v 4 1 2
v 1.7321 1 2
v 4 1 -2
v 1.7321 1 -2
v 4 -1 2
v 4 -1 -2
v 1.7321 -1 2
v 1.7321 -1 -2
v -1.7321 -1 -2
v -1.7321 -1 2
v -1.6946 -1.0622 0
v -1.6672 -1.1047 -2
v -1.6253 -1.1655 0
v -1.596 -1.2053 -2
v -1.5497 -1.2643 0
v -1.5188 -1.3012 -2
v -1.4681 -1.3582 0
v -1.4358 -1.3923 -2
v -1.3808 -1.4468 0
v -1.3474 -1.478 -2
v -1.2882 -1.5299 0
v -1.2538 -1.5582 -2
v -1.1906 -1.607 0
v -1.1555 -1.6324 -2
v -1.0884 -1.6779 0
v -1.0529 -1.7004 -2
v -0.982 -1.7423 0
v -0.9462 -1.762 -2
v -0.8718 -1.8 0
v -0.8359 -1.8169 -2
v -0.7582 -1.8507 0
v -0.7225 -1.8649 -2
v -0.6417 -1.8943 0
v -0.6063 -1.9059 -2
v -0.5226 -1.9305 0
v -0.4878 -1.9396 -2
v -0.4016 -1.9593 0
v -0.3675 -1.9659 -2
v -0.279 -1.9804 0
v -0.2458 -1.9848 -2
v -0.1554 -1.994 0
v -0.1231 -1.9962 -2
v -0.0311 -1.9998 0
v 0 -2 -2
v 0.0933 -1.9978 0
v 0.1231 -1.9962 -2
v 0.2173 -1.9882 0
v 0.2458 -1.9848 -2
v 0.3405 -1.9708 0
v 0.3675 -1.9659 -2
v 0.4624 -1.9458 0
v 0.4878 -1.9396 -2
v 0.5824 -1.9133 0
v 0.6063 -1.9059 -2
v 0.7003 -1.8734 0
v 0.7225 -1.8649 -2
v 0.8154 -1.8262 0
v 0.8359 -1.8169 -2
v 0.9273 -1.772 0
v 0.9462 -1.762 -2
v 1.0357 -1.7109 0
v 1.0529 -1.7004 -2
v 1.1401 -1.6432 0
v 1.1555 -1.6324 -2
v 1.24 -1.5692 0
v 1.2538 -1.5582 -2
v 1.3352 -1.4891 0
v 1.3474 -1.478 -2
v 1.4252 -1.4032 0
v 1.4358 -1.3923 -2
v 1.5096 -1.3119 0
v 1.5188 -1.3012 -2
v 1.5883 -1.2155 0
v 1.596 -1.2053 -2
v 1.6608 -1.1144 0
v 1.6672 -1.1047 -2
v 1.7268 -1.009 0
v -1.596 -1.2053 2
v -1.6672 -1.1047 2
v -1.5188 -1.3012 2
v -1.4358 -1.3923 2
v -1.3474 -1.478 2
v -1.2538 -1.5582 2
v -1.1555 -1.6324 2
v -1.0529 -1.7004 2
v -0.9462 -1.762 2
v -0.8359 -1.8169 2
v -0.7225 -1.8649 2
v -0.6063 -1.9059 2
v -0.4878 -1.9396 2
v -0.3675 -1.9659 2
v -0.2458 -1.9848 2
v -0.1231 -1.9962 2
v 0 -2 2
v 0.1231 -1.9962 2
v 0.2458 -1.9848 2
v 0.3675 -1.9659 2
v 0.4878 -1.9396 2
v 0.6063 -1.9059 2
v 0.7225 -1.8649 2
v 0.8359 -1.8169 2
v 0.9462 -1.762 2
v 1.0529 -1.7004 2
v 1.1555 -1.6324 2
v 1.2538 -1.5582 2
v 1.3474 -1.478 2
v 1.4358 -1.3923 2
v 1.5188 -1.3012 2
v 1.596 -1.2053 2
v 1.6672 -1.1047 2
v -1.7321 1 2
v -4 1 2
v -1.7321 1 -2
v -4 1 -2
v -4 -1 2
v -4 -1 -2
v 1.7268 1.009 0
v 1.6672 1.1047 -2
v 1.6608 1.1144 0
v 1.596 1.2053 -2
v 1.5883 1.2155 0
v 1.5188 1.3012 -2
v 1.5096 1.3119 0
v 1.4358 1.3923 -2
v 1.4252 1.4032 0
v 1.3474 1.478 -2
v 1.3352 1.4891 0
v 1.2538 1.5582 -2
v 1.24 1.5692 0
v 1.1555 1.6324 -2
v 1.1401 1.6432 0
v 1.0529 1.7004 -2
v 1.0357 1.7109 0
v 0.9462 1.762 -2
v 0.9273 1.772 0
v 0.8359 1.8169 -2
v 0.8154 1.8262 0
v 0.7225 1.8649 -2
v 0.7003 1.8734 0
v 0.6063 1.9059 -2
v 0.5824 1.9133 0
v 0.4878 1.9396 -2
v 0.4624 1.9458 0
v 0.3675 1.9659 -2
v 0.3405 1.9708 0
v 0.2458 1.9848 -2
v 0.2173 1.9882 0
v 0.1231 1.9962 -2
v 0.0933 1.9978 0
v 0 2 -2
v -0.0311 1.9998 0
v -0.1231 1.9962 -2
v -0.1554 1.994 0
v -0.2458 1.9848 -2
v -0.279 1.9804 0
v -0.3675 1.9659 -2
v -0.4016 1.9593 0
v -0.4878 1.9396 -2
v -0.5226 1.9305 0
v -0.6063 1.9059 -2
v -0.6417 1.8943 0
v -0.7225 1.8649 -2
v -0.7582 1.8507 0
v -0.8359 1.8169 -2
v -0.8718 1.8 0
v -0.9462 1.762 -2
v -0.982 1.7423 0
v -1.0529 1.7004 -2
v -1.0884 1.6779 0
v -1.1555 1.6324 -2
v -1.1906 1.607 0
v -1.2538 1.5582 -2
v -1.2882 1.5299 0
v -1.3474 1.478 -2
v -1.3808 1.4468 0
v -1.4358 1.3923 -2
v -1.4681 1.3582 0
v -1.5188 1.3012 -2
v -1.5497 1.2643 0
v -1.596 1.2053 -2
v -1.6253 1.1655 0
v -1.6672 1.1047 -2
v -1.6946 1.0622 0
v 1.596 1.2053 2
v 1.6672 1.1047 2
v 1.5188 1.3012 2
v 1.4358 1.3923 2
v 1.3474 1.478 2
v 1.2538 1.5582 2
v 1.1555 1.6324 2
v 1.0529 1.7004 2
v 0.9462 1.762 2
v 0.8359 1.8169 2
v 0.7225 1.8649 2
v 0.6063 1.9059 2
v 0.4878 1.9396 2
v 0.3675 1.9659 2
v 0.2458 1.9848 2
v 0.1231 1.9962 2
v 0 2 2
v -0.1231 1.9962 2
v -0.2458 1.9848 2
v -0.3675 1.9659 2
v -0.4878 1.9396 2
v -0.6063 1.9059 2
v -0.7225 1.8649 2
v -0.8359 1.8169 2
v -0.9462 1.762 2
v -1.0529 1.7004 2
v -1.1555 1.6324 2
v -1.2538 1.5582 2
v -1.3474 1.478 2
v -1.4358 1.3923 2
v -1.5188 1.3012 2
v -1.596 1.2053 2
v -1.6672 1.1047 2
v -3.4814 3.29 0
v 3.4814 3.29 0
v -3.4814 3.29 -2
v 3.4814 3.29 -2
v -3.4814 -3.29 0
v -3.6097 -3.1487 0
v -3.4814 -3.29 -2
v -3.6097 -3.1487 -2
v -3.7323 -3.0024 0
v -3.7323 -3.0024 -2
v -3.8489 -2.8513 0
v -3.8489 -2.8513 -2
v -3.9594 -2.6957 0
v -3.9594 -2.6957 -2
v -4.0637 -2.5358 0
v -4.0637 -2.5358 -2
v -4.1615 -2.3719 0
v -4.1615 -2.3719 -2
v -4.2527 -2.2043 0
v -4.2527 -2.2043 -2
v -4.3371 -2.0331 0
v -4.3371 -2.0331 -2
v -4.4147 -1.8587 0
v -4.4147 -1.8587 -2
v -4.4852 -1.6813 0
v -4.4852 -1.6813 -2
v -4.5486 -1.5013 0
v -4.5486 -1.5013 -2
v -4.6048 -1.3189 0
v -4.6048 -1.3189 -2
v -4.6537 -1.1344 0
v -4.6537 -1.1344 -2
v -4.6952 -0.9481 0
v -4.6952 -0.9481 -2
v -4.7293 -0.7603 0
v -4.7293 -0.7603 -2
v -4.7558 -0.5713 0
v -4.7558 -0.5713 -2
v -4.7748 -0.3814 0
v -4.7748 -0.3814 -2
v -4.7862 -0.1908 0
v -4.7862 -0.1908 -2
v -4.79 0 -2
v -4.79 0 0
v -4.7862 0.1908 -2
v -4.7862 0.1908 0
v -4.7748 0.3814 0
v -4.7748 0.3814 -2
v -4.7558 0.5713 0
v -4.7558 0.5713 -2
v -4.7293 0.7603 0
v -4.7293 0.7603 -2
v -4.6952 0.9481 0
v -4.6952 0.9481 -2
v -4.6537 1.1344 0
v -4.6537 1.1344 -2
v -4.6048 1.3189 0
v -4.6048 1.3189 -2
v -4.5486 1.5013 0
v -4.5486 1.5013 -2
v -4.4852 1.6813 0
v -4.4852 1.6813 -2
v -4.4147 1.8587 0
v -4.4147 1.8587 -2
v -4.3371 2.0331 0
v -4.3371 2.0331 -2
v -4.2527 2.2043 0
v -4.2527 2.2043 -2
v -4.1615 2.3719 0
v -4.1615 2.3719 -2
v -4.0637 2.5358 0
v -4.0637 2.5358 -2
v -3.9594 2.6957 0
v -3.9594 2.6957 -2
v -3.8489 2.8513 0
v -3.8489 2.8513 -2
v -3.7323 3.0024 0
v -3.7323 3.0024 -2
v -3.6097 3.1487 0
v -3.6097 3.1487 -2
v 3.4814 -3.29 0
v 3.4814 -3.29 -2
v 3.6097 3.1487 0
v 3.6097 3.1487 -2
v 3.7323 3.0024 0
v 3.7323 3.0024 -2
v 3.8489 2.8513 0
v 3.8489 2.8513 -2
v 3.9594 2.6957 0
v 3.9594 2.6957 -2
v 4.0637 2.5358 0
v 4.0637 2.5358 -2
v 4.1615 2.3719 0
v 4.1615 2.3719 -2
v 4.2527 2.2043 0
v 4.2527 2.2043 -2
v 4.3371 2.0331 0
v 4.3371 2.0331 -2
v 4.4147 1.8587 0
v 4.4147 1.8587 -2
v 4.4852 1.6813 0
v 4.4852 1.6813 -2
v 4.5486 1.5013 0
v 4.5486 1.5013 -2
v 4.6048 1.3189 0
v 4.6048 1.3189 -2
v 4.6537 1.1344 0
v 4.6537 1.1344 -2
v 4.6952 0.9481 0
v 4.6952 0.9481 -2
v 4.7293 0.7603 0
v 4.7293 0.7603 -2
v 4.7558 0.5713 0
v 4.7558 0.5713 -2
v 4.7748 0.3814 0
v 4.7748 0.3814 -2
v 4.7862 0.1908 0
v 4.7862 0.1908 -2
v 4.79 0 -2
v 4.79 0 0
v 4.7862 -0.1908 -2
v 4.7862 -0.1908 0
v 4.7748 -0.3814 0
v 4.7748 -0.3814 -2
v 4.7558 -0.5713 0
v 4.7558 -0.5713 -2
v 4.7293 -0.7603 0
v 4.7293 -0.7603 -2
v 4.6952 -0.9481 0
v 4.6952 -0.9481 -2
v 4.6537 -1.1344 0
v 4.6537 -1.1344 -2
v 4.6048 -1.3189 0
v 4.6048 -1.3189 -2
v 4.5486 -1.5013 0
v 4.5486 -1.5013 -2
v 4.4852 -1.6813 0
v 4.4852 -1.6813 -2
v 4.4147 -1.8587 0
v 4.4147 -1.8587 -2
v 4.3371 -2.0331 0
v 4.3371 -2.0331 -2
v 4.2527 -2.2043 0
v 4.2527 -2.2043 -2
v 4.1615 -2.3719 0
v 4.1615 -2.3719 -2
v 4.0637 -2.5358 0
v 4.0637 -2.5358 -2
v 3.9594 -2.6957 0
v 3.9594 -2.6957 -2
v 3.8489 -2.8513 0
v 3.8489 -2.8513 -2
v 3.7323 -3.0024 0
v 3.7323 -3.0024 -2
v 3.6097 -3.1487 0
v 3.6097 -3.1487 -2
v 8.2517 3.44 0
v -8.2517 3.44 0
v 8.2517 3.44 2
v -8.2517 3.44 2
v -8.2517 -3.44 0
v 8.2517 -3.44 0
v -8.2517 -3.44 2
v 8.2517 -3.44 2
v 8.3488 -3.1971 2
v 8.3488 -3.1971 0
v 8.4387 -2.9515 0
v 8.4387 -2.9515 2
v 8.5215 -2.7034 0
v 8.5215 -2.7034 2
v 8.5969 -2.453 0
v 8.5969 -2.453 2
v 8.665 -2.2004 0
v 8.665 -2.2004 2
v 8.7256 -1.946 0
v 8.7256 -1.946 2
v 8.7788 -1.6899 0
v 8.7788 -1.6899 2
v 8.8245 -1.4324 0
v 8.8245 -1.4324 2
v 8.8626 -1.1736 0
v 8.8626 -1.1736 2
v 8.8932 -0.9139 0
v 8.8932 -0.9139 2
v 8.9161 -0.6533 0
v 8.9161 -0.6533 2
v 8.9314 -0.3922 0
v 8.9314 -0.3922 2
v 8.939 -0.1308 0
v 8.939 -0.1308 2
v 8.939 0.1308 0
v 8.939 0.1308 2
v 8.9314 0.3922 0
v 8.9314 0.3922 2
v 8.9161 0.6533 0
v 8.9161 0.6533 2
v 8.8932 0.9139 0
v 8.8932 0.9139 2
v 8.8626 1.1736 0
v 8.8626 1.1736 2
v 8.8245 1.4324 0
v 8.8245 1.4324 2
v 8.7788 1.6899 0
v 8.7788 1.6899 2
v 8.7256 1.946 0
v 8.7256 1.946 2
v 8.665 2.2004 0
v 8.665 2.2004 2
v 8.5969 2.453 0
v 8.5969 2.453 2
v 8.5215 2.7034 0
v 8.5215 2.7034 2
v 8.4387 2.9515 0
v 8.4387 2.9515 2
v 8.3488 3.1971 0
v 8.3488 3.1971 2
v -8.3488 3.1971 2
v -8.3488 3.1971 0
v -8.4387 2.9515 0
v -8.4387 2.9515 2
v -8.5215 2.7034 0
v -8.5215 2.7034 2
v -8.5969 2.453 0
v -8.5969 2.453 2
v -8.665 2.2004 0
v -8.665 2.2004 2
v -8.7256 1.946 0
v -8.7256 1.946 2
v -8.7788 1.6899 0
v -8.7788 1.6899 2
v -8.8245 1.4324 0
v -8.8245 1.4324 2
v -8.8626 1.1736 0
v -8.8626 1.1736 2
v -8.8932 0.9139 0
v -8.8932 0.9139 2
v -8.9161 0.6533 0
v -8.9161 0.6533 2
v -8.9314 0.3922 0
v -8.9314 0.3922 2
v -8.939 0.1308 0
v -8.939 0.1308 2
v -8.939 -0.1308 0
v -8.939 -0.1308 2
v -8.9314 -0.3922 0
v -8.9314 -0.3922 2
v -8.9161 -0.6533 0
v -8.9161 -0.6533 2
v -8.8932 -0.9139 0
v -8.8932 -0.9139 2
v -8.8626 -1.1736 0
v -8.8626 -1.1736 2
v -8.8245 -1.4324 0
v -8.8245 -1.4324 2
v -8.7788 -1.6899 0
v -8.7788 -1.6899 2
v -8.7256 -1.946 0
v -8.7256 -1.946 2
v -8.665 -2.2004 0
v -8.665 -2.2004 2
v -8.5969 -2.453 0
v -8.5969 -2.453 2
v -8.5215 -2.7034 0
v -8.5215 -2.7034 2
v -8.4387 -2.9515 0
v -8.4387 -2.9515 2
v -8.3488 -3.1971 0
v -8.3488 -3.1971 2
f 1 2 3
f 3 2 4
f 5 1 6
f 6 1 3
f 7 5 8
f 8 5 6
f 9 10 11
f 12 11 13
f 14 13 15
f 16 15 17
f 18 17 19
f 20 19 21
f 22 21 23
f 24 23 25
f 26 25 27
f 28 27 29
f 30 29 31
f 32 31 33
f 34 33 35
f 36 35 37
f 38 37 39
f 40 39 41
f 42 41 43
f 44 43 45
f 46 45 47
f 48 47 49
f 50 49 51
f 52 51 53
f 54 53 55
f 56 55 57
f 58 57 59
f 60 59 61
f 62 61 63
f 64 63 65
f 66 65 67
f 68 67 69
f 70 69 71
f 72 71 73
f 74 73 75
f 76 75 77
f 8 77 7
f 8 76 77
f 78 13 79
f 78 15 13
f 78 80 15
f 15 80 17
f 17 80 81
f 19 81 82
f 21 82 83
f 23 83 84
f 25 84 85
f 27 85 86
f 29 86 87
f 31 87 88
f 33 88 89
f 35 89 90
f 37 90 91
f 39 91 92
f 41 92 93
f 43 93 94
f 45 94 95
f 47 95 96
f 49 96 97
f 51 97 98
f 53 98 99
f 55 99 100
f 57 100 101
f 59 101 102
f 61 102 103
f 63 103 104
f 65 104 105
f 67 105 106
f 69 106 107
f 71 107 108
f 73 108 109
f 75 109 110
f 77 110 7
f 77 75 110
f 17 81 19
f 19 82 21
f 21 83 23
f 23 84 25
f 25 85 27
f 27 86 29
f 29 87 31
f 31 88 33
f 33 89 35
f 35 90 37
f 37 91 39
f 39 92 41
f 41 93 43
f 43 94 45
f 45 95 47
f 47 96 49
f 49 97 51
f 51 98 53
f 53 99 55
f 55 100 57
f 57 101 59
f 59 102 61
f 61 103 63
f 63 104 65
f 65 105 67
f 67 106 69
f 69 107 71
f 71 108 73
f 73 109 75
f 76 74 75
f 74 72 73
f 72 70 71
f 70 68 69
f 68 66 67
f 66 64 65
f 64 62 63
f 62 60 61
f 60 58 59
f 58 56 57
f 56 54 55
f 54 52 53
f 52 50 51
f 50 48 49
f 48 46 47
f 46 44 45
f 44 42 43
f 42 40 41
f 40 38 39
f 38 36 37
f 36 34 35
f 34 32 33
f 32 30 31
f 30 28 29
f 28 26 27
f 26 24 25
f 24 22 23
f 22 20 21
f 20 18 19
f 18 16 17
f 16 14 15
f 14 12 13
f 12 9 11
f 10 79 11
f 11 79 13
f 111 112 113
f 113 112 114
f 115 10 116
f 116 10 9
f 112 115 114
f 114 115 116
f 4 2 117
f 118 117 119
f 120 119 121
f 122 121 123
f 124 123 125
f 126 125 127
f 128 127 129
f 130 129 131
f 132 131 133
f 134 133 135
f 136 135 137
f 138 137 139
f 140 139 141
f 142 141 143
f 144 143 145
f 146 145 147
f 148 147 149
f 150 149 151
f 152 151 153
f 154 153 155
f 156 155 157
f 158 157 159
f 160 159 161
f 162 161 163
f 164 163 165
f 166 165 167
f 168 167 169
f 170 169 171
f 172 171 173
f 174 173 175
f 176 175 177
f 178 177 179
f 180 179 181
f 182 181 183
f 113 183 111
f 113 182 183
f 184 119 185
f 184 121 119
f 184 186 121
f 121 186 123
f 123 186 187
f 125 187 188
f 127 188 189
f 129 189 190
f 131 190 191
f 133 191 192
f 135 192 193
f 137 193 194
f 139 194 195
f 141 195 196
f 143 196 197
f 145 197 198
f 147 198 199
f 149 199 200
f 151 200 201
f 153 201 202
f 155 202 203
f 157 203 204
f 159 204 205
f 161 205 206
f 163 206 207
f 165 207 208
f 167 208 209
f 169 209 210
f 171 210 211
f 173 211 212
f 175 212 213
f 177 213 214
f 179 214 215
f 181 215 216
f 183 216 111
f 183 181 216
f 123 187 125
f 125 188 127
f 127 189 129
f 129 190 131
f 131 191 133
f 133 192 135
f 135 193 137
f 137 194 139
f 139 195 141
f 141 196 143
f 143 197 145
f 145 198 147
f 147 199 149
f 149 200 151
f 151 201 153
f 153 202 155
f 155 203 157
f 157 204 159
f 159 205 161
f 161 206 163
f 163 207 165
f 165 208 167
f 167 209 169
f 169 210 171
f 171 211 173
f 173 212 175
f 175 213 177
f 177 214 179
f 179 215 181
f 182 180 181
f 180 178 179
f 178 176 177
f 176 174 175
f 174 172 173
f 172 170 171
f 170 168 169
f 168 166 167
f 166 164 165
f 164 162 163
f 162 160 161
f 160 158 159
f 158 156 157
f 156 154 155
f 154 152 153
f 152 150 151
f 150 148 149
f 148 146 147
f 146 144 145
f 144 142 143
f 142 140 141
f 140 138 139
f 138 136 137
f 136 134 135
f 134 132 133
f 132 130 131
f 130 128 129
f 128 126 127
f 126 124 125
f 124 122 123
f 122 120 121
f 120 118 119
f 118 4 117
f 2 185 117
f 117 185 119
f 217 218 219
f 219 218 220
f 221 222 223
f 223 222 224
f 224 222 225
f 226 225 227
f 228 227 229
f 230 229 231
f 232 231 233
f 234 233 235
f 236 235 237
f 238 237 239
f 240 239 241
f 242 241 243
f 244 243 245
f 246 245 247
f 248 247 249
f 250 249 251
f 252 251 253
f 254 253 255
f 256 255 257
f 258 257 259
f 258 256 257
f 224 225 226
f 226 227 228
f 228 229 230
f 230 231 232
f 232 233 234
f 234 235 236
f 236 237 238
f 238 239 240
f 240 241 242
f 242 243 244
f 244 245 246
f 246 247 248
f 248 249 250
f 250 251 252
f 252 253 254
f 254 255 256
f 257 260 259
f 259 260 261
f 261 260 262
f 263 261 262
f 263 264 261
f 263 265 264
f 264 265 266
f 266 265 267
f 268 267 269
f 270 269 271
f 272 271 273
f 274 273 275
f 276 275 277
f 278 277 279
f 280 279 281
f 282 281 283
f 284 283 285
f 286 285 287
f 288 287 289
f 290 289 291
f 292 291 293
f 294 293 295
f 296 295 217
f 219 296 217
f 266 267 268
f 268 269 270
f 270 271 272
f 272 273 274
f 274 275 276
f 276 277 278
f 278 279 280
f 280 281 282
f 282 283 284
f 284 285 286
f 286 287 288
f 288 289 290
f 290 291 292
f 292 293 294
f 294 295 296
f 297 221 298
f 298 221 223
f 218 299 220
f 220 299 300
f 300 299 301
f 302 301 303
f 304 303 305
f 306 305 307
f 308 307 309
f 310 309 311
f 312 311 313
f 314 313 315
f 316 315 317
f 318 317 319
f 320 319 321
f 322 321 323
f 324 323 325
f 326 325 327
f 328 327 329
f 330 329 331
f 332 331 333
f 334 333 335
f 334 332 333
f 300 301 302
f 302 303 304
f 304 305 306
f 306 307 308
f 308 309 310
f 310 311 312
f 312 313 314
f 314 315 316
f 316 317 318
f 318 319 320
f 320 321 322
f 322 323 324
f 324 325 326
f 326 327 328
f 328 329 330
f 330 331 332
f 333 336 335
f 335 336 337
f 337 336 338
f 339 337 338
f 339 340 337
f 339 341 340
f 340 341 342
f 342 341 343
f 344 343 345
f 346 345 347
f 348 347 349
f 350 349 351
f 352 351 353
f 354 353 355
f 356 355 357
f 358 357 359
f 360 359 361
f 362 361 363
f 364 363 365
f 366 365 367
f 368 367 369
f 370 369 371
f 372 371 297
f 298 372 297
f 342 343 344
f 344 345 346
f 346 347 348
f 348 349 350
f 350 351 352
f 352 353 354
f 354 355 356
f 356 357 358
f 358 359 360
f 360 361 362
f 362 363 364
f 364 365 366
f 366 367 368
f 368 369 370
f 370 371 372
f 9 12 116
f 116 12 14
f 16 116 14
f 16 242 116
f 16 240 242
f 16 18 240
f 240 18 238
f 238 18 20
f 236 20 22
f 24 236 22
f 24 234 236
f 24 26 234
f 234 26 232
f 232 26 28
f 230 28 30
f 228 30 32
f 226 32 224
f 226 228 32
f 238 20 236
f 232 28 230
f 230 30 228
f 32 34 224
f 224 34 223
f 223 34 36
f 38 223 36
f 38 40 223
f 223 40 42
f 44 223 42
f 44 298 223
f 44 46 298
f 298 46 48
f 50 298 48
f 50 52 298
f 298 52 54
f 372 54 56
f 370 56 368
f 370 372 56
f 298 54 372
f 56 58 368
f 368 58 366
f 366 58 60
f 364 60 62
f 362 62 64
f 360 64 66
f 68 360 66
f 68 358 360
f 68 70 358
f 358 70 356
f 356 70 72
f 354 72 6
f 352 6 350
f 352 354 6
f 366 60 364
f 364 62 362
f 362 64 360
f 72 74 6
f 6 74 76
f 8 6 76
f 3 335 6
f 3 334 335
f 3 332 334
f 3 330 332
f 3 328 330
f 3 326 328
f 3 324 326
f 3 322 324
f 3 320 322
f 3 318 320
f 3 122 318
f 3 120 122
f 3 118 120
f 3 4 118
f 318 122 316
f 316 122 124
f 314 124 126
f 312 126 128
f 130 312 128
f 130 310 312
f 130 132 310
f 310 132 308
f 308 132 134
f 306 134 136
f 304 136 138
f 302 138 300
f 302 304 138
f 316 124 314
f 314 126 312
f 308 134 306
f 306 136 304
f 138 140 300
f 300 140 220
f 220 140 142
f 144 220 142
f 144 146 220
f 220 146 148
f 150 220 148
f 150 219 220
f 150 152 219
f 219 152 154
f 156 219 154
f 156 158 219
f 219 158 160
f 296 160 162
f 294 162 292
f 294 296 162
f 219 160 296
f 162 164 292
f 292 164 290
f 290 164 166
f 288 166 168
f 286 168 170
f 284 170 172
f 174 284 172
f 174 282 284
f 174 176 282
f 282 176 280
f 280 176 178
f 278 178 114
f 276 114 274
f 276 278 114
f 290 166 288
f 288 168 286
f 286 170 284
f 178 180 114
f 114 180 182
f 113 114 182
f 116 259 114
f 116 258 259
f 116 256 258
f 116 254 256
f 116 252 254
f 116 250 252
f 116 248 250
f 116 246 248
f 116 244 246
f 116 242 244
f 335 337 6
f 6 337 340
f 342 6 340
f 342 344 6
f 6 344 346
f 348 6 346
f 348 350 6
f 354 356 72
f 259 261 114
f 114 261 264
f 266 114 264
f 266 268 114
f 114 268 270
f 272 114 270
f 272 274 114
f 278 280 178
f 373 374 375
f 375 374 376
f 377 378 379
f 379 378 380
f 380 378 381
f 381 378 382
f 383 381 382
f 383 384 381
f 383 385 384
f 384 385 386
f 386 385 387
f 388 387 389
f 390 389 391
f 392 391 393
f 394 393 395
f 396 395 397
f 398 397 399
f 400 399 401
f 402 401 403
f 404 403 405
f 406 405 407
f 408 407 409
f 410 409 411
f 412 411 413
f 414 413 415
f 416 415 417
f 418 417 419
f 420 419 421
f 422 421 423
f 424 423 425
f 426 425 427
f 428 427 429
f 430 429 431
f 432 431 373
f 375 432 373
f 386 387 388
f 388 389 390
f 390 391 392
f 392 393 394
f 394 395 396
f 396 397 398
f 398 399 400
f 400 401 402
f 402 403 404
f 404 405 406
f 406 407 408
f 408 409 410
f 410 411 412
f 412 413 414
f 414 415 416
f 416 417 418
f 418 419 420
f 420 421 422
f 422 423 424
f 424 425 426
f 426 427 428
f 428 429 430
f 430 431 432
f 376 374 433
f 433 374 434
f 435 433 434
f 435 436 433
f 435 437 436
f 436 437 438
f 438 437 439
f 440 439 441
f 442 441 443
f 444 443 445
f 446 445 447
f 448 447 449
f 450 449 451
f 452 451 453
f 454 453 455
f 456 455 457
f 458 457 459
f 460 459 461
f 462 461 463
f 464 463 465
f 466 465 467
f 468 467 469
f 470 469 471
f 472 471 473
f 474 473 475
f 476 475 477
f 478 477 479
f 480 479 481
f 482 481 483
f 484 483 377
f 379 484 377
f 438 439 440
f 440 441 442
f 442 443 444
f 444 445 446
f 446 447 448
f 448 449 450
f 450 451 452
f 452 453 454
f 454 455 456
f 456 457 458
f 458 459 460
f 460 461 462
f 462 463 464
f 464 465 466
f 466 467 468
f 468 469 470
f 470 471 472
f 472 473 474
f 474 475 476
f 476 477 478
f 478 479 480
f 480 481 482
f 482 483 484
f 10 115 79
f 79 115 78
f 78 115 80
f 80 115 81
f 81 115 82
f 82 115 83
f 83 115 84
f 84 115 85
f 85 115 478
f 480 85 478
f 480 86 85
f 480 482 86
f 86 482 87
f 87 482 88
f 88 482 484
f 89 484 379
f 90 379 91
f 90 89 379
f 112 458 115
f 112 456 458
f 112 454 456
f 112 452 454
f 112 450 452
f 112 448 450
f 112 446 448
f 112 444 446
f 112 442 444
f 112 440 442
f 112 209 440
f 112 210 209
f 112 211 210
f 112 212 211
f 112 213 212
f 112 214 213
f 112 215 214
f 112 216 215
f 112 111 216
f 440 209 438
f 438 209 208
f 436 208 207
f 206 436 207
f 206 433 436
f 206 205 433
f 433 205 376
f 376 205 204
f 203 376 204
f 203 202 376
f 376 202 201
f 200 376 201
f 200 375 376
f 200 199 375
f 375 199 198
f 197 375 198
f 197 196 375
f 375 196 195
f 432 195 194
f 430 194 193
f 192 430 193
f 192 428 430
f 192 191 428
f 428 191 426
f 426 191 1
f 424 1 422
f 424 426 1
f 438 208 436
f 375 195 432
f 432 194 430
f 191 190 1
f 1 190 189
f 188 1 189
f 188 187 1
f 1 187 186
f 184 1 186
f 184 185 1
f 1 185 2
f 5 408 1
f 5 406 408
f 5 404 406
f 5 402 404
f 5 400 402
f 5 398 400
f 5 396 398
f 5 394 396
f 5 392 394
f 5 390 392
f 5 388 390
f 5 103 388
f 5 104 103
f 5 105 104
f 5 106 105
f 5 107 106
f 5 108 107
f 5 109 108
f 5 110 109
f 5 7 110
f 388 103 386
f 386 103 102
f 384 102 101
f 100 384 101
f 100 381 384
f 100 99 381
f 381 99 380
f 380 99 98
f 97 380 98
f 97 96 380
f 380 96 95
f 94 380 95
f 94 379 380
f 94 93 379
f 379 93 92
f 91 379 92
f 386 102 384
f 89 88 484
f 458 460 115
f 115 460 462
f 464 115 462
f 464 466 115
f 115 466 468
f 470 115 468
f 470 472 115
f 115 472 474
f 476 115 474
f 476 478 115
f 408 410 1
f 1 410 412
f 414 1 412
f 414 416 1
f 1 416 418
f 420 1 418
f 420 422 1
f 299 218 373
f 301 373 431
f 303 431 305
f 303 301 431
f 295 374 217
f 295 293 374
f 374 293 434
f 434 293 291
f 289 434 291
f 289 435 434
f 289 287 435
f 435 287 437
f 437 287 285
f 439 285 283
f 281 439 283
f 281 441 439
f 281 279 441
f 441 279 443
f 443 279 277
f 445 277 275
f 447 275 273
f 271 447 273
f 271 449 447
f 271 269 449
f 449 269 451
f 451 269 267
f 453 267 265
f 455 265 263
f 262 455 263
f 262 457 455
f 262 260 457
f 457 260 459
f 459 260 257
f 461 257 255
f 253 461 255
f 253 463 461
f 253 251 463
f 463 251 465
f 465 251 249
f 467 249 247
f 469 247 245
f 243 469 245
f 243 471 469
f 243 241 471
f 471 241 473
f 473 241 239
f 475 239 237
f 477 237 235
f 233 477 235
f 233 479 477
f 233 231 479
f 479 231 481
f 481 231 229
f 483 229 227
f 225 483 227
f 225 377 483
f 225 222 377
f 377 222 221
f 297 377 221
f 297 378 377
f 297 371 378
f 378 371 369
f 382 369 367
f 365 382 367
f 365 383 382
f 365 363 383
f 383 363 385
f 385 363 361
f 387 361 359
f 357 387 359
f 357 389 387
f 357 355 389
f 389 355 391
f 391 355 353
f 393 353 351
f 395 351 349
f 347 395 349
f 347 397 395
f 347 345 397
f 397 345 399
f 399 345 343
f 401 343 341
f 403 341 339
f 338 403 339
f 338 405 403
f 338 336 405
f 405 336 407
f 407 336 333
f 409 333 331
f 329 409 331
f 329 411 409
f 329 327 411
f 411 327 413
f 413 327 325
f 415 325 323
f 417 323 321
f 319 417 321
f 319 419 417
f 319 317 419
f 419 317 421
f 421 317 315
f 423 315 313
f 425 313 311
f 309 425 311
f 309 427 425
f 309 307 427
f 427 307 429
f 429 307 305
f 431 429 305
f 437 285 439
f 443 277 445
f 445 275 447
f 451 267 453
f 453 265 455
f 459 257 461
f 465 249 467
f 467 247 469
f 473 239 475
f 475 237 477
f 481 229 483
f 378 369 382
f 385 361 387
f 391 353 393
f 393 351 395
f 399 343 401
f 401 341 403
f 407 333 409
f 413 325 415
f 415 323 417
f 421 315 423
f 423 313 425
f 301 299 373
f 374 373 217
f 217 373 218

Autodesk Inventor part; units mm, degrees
ref_plane "YZ Plane" through (0, 0, 0) normal (1, 0, 0) x (0, 1, 0)
ref_plane "XZ Plane" through (0, 0, 0) normal (0, 1, 0) x (-1, 0, 0)
ref_plane "XY Plane" through (0, 0, 0) normal (0, 0, 1) x (1, 0, 0)
ref_plane "Work Plane1" through (0, 0, 0) normal (0, 0, 1) x (1, 0, 0)
sketch "Sketch1" plane through (0, 0, 0) normal (0, 0, 1) x (1, 0, 0)
  arc A0 (-3.5454, 3.44) -> (-3.5454, -3.44) centre (0, 0) ccw construction
  line L0 (-3.5454, 3.44) -> (-1.1656, 3.44) construction
  line L1 (-1.1656, 3.44) -> (-1.1656, 4.44) construction
  line L2 (-1.1656, 4.44) -> (-2.5, 4.44) construction
  line L3 (-2.5, 4.44) -> (-2.5, 5.44) construction
  line L4 (-2.5, 5.44) -> (2.5, 5.44) construction
  line L5 (2.5, 5.44) -> (2.5, 4.44) construction
  line L6 (2.5, 4.44) -> (1.1656, 4.44) construction
  line L7 (1.1656, 4.44) -> (1.1656, 3.44) construction
  line L8 (1.1656, 3.44) -> (3.5454, 3.44) construction
  arc A1 (3.5454, -3.44) -> (3.5454, 3.44) centre (0, 0) ccw construction
  line L9 (1.1656, -3.44) -> (3.5454, -3.44) construction
  line L10 (1.1656, -4.44) -> (1.1656, -3.44) construction
  line L11 (1.1656, -4.44) -> (2.5, -4.44) construction
  line L12 (2.5, -4.44) -> (2.5, -5.44) construction
  line L13 (2.5, -5.44) -> (-2.5, -5.44) construction
  line L14 (-2.5, -5.44) -> (-2.5, -4.44) construction
  line L15 (-1.1656, -4.44) -> (-2.5, -4.44) construction
  line L16 (-1.1656, -3.44) -> (-1.1656, -4.44) construction
  line L17 (-3.5454, -3.44) -> (-1.1656, -3.44) construction
  arc A2 (-11, 8.1244) -> (-11, -8.1244) centre (0, 0) ccw projected
  line L18 (-11, -8.1244) -> (-11, -24.74) projected
  line L19 (-11, -24.74) -> (11, -24.74) projected
  line L20 (11, -24.74) -> (11, -8.1244) projected
  arc A3 (11, -8.1244) -> (11, 8.1244) centre (0, 0) ccw projected
  line L21 (11, 24.74) -> (11, 8.1244) projected
  line L22 (-11, 24.74) -> (11, 24.74) projected
  line L23 (-11, 8.1244) -> (-11, 24.74) projected
  line L24 (-8.2517, 3.44) -> (8.2517, 3.44)
  line L25 (8.2517, 3.44) -> (8.2517, -3.44)
  line L26 (8.2517, -3.44) -> (-8.2517, -3.44)
  line L27 (-8.2517, -3.44) -> (-8.2517, 3.44)
  arc A4 (8.2517, -3.44) -> (8.2517, 3.44) centre (0, 0) ccw
  arc A5 (-8.2517, 3.44) -> (-8.2517, -3.44) centre (0, 0) ccw
  point P0 (0, 0)
extrude "Extrusion1" add sketch "Sketch1" along normal blind 2 contours L24 L25 L26 L27 | L27 A5 | A4 L25
sketch "Sketch2" plane through (0, 0, 0) normal (0, 0, -1) x (-1, 0, 0)
  line L0 (-8.2517, 3.44) -> (8.2517, 3.44) construction
  line L1 (8.2517, -3.44) -> (-8.2517, -3.44) construction
  line L2 (1.1656, -3.44) -> (3.5454, -3.44) construction
  line L3 (1.1656, -4.69) -> (1.1656, -3.44) construction
  line L4 (2.25, -4.69) -> (1.1656, -4.69) construction
  line L5 (2.25, -5.19) -> (2.25, -4.69) construction
  line L6 (-2.25, -5.19) -> (2.25, -5.19) construction
  line L7 (-2.25, -4.69) -> (-2.25, -5.19) construction
  line L8 (-1.1656, -4.69) -> (-2.25, -4.69) construction
  line L9 (-1.1656, -3.44) -> (-1.1656, -4.69) construction
  line L10 (-3.5454, -3.44) -> (-1.1656, -3.44) construction
  arc A0 (-3.5454, 3.44) -> (-3.5454, -3.44) centre (0, 0) ccw construction
  line L11 (-3.5454, 3.44) -> (-1.1656, 3.44) construction
  line L12 (-1.1656, 3.44) -> (-1.1656, 4.69) construction
  line L13 (-1.1656, 4.69) -> (-2.25, 4.69) construction
  line L14 (-2.25, 4.69) -> (-2.25, 5.19) construction
  line L15 (-2.25, 5.19) -> (2.25, 5.19) construction
  line L16 (2.25, 5.19) -> (2.25, 4.69) construction
  line L17 (2.25, 4.69) -> (1.1656, 4.69) construction
  line L18 (1.1656, 4.69) -> (1.1656, 3.44) construction
  line L19 (1.1656, 3.44) -> (3.5454, 3.44) construction
  arc A1 (3.5454, -3.44) -> (3.5454, 3.44) centre (0, 0) ccw construction
  circle A2 centre (0, 0) radius 6.94 construction
  circle A3 centre (0, 0) radius 4.79
  line L20 (-3.4814, 3.29) -> (3.4814, 3.29)
  line L21 (-3.4814, -3.29) -> (3.4814, -3.29)
  dimension "d3" = 0.15
  dimension "d4" = 0.15
  dimension "d5" = 0.15
extrude "Extrusion2" add sketch "Sketch2" along normal blind 2 contours A3 L21 L20
sketch "Sketch3" plane through (0, 0, -2) normal (0, 0, -1) x (-1, 0, 0)
  arc A0 (3.4814, -3.29) -> (3.4814, 3.29) centre (0, 0) ccw projected
  circle A1 centre (0, 0) radius 2
  line L0 (-4, -1) -> (4, -1)
  line L1 (4, -1) -> (4, 1)
  line L2 (4, 1) -> (-4, 1)
  line L3 (-4, 1) -> (-4, -1)
  line L4 (-4, -1) -> (4, 1) construction
  line L5 (4, -1) -> (-4, 1) construction
  dimension "d8" = 4
extrude "Extrusion3" cut sketch "Sketch3" against normal through all
properties part number "ECoG_holder_cap2"
